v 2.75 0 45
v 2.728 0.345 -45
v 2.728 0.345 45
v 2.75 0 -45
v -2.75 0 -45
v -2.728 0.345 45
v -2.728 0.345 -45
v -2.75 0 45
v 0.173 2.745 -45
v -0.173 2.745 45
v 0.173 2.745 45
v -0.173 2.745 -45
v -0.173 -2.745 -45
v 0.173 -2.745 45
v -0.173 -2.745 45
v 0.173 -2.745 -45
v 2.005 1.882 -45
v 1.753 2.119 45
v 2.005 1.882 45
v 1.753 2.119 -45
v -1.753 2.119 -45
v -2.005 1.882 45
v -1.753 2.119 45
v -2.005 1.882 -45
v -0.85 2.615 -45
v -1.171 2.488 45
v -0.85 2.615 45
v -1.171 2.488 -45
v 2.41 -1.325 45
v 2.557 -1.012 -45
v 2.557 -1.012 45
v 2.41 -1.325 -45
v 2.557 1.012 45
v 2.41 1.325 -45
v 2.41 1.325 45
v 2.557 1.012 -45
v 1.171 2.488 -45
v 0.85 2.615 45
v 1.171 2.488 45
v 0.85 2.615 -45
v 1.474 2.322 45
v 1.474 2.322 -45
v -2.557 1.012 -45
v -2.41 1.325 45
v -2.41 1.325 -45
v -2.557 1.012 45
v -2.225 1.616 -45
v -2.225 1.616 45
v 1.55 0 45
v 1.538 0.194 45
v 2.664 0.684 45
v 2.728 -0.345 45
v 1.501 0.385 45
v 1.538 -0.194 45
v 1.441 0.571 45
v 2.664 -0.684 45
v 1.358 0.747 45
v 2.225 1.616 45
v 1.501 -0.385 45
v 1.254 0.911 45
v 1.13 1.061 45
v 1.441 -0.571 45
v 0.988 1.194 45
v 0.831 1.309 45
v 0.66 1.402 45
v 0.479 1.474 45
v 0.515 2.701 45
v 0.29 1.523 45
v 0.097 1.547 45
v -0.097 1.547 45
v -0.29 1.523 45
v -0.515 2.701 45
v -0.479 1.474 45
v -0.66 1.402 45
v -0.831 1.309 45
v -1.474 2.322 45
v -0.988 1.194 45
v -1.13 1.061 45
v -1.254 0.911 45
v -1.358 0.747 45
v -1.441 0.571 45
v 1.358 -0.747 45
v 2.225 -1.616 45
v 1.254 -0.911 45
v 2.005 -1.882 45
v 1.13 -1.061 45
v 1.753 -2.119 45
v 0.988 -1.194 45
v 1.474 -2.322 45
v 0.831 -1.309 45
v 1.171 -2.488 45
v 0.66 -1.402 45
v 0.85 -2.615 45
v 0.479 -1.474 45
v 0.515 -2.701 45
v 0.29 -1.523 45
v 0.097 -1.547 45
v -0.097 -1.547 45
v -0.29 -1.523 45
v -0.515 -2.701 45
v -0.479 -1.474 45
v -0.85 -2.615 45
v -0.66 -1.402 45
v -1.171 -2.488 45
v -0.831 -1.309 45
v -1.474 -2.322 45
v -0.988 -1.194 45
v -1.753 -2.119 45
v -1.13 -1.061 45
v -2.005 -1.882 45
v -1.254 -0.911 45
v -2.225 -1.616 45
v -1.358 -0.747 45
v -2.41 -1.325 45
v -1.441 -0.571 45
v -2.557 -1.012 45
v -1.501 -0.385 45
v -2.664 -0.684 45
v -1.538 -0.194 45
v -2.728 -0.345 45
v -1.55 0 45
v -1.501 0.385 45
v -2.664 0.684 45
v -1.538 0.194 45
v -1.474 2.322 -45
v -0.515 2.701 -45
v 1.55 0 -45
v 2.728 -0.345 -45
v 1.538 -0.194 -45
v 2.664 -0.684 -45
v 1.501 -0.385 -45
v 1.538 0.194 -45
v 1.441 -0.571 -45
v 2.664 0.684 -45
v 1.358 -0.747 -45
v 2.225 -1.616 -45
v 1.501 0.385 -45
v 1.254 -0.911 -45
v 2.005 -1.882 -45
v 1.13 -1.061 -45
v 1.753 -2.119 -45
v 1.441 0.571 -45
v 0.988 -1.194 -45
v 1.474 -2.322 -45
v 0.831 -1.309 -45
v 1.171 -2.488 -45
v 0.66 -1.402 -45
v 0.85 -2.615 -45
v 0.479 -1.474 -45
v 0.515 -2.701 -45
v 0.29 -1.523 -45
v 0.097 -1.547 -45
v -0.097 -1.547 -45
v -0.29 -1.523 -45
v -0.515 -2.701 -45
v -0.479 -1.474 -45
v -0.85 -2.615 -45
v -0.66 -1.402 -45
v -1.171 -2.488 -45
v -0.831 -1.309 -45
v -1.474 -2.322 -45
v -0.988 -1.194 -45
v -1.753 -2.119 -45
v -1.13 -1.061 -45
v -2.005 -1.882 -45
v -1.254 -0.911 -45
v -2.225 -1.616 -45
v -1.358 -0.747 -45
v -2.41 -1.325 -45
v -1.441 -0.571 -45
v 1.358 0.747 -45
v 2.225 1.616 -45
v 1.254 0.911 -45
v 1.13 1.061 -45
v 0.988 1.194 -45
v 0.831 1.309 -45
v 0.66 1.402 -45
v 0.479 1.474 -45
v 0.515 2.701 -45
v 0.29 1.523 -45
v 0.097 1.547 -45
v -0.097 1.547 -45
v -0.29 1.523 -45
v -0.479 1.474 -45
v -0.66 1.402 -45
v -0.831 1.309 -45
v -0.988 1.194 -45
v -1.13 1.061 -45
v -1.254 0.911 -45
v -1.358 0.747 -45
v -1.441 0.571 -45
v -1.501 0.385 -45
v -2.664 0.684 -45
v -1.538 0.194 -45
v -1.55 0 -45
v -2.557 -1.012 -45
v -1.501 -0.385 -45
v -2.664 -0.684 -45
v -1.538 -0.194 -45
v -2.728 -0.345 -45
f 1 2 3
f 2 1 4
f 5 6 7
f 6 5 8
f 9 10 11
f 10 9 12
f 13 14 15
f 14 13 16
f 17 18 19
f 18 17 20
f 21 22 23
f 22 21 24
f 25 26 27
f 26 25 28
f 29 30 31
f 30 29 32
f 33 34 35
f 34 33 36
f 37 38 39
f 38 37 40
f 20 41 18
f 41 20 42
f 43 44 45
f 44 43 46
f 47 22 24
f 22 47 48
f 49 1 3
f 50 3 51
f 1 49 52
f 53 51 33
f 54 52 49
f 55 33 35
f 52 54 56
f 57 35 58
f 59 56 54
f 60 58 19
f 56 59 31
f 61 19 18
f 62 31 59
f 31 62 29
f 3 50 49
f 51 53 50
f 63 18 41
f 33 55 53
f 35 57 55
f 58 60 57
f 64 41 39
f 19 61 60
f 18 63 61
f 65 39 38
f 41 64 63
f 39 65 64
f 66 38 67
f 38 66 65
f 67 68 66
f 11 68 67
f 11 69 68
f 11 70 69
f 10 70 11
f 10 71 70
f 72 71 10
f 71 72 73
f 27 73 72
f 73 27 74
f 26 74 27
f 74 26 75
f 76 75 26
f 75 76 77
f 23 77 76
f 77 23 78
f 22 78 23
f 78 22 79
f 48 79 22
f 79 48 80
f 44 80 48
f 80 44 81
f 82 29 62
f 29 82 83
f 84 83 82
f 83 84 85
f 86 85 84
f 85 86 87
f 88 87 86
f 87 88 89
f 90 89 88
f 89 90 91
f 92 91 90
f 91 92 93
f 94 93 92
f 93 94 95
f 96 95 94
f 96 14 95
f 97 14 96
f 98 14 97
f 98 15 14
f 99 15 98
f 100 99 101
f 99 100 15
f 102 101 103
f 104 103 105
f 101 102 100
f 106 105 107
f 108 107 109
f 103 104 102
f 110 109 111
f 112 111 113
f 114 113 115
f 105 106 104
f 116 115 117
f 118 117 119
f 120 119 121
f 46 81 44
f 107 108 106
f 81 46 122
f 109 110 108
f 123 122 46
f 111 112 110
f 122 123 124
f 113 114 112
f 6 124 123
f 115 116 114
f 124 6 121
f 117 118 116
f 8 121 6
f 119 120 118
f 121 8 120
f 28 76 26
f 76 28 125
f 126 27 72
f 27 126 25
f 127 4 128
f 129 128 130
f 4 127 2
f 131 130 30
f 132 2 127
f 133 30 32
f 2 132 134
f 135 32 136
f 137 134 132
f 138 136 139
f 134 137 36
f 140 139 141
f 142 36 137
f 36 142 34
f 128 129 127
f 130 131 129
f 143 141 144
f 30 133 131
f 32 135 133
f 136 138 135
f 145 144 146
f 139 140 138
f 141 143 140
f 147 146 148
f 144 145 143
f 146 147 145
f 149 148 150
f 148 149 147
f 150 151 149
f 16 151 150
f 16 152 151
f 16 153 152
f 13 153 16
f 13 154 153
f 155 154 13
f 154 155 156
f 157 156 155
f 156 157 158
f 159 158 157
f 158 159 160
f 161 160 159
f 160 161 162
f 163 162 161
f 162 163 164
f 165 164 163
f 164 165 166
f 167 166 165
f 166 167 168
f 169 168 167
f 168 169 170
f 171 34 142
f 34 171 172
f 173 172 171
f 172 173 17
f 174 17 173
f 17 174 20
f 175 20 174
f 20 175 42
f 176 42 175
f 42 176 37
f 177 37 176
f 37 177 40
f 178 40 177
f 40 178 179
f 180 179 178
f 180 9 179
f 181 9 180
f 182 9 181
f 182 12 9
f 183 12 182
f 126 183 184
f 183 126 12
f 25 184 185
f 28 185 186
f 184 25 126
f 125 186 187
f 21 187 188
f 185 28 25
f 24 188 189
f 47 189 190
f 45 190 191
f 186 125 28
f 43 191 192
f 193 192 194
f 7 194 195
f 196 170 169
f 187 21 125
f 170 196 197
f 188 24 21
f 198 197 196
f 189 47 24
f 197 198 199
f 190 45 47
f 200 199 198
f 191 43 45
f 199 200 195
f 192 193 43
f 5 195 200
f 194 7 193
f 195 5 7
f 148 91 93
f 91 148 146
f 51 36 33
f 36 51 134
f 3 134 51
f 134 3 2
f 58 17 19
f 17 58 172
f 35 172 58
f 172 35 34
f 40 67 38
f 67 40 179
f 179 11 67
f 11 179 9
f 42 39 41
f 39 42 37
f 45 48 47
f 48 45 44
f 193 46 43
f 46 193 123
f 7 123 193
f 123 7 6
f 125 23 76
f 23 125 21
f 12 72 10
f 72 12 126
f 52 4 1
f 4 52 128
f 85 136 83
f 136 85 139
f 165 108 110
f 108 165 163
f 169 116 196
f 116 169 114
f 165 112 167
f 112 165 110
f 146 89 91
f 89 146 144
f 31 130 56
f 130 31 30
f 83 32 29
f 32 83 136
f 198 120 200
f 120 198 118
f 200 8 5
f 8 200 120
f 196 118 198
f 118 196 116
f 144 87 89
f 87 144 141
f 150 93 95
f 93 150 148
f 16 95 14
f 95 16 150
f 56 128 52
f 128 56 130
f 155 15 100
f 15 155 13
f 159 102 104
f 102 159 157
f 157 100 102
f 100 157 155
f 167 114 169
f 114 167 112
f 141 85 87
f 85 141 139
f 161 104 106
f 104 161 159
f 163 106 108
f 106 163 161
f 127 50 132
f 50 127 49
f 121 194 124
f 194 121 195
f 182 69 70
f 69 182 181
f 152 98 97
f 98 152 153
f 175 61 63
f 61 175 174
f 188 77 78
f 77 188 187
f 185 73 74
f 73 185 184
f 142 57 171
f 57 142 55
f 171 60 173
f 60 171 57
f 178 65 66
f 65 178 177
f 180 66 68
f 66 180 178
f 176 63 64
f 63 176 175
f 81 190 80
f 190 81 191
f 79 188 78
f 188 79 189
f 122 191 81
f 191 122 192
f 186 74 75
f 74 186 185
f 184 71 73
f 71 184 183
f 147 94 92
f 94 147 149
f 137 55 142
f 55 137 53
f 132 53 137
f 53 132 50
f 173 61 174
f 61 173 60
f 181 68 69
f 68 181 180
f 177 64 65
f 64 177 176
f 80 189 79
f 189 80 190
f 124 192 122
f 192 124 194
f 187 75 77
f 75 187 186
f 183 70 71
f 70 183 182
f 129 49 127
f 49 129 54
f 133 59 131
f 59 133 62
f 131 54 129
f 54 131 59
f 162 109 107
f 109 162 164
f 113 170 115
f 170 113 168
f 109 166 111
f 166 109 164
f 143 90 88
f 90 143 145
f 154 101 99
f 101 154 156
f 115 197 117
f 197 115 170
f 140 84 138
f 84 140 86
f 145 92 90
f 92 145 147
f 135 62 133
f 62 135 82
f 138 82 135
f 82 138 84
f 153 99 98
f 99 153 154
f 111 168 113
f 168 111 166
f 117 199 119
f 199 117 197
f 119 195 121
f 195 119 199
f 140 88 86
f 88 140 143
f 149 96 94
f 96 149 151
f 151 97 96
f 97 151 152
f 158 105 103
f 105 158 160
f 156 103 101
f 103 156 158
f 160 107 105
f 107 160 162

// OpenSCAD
$fn = 50;


difference() {
	union() {
		translate(v = [0, 0, -45.0000000000]) {
			cylinder(h = 90, r = 2.7500000000);
		}
	}
	union() {
		translate(v = [0, 0, -100.0000000000]) {
			cylinder(h = 200, r = 1.5500000000);
		}
	}
}
